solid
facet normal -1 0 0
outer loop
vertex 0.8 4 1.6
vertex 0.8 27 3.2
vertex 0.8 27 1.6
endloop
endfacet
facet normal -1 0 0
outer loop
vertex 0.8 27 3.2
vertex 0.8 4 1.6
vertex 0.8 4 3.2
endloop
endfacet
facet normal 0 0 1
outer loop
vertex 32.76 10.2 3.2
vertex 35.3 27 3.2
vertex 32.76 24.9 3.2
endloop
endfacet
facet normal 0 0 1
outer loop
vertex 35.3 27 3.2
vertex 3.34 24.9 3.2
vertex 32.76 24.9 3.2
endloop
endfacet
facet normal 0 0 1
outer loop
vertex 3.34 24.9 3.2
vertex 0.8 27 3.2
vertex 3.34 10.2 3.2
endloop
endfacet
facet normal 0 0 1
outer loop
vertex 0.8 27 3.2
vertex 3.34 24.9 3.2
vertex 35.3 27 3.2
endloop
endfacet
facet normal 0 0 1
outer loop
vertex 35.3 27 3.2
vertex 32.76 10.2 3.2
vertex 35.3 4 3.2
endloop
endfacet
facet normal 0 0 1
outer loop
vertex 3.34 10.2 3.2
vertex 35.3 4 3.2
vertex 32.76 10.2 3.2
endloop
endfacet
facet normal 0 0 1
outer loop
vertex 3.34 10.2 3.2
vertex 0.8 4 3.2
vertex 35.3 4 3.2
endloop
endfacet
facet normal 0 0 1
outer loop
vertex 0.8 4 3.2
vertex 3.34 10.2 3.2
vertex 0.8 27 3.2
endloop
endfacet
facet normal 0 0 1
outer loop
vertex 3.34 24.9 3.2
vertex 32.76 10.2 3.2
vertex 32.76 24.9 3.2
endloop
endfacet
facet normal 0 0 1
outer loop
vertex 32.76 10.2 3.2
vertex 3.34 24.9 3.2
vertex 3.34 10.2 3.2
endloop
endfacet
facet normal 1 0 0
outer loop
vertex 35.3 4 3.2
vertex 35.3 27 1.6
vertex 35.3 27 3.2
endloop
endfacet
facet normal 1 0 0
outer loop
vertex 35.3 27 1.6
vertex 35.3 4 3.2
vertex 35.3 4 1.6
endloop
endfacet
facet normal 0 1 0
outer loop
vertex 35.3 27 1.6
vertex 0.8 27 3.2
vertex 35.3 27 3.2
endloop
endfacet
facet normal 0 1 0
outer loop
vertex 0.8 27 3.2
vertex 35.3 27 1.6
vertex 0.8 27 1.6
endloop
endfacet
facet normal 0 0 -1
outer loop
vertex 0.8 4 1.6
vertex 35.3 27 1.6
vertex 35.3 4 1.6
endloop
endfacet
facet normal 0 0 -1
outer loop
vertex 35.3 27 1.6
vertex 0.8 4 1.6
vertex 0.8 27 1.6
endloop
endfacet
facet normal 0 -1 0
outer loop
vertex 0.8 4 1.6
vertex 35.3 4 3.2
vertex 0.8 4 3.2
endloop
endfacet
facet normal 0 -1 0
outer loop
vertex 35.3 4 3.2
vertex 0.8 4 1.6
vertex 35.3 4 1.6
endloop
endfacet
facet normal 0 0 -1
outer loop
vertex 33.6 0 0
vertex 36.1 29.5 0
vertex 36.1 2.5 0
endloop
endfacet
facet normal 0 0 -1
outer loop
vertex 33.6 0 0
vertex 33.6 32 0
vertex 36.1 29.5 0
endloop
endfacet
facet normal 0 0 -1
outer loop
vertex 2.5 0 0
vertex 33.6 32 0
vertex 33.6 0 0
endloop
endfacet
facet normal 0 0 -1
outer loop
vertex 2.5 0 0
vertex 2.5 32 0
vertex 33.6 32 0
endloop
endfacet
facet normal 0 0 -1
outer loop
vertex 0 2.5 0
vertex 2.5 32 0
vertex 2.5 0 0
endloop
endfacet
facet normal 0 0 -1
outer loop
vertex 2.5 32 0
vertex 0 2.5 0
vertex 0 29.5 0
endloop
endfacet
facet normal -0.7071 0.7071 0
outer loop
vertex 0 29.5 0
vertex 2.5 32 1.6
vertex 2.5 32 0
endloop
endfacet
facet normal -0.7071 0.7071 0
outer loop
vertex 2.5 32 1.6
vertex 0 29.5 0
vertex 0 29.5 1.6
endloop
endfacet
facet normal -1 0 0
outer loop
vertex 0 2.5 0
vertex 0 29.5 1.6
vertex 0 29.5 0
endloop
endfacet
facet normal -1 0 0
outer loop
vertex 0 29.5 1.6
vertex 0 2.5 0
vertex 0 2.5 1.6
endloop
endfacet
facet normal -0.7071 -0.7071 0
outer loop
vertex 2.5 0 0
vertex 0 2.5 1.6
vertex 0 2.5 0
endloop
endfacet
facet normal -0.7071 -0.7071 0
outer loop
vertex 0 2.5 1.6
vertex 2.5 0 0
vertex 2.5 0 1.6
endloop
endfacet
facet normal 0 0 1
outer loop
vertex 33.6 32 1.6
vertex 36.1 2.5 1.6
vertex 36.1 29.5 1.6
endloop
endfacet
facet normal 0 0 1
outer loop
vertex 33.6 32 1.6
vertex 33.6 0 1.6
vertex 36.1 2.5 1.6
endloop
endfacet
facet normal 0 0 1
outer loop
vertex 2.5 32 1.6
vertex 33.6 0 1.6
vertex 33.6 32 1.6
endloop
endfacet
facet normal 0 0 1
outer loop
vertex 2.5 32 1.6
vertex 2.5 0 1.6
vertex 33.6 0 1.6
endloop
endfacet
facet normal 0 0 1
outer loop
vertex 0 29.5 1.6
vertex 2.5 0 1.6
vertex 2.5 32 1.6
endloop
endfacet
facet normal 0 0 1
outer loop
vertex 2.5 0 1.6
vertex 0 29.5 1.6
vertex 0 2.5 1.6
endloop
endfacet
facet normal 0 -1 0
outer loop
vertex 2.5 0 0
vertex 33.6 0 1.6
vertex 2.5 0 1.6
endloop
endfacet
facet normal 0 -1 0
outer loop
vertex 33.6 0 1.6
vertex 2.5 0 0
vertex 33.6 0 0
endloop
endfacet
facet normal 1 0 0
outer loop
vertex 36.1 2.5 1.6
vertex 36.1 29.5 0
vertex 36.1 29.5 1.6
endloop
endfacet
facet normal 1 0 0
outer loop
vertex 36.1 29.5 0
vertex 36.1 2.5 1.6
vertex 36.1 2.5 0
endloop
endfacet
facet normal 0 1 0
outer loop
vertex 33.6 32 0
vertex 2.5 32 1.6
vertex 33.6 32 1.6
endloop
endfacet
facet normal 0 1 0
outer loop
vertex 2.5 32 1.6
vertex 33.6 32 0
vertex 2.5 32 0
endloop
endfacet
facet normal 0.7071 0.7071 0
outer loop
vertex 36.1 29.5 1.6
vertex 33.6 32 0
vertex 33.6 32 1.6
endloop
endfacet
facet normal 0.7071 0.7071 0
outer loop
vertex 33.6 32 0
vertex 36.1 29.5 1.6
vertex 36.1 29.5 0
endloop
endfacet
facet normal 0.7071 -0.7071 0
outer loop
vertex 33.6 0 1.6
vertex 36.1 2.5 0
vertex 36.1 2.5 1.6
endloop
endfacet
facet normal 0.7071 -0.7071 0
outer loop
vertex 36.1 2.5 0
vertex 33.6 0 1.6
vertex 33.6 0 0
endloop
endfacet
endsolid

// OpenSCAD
// pcb dimensions
pcb_x = 36.1;
pcb_y = 32;
pcb_z = 1.6;

// corner cutouf dimenstion
corner = 2.5;

// display dimensions
display_x = 34.5;
display_y = 23;
display_z = 1.6;

// display position
display_pos_x = 0.8;
display_pos_y = 4;

// active area of display
active_x = 29.42;
active_y = 14.7;

// offset of active area from top of display
act_os_y = 2.1;
// bring active area in a little so it's visible
act_os_z = 0.1;

// combine PCB and Display
union(){
    // PCB with corner cutouts
    linear_extrude(pcb_z)
    difference() {
        square([pcb_x, pcb_y], false);
        // bottom left corner cutout
        polygon(points=[[0, 0],[0,corner],[corner,0]]);
        // top left corner cutout
        polygon(points=[[0, pcb_y-corner],[0,pcb_y],[corner,pcb_y]]);
        // top right corner cutout
        polygon(points=[[pcb_x-corner, pcb_y],[pcb_x,pcb_y],[pcb_x,pcb_y-corner]]);
        // bottom right corner cutout
        polygon(points=[[pcb_x-corner, 0],[pcb_x,corner],[pcb_x,0]]);
    };

    // Display and active area moved into place
    translate([display_pos_x, display_pos_y, pcb_z]) {
        difference() {
            // full display
            cube([display_x, display_y, display_z]);
            // move active area into place
            // centered in the X direction
            translate([(display_x-active_x)/2, (display_y-active_y-act_os_y), display_z]) {
                cube([active_x, active_y, act_os_z]);
            };
        }
    };
}
